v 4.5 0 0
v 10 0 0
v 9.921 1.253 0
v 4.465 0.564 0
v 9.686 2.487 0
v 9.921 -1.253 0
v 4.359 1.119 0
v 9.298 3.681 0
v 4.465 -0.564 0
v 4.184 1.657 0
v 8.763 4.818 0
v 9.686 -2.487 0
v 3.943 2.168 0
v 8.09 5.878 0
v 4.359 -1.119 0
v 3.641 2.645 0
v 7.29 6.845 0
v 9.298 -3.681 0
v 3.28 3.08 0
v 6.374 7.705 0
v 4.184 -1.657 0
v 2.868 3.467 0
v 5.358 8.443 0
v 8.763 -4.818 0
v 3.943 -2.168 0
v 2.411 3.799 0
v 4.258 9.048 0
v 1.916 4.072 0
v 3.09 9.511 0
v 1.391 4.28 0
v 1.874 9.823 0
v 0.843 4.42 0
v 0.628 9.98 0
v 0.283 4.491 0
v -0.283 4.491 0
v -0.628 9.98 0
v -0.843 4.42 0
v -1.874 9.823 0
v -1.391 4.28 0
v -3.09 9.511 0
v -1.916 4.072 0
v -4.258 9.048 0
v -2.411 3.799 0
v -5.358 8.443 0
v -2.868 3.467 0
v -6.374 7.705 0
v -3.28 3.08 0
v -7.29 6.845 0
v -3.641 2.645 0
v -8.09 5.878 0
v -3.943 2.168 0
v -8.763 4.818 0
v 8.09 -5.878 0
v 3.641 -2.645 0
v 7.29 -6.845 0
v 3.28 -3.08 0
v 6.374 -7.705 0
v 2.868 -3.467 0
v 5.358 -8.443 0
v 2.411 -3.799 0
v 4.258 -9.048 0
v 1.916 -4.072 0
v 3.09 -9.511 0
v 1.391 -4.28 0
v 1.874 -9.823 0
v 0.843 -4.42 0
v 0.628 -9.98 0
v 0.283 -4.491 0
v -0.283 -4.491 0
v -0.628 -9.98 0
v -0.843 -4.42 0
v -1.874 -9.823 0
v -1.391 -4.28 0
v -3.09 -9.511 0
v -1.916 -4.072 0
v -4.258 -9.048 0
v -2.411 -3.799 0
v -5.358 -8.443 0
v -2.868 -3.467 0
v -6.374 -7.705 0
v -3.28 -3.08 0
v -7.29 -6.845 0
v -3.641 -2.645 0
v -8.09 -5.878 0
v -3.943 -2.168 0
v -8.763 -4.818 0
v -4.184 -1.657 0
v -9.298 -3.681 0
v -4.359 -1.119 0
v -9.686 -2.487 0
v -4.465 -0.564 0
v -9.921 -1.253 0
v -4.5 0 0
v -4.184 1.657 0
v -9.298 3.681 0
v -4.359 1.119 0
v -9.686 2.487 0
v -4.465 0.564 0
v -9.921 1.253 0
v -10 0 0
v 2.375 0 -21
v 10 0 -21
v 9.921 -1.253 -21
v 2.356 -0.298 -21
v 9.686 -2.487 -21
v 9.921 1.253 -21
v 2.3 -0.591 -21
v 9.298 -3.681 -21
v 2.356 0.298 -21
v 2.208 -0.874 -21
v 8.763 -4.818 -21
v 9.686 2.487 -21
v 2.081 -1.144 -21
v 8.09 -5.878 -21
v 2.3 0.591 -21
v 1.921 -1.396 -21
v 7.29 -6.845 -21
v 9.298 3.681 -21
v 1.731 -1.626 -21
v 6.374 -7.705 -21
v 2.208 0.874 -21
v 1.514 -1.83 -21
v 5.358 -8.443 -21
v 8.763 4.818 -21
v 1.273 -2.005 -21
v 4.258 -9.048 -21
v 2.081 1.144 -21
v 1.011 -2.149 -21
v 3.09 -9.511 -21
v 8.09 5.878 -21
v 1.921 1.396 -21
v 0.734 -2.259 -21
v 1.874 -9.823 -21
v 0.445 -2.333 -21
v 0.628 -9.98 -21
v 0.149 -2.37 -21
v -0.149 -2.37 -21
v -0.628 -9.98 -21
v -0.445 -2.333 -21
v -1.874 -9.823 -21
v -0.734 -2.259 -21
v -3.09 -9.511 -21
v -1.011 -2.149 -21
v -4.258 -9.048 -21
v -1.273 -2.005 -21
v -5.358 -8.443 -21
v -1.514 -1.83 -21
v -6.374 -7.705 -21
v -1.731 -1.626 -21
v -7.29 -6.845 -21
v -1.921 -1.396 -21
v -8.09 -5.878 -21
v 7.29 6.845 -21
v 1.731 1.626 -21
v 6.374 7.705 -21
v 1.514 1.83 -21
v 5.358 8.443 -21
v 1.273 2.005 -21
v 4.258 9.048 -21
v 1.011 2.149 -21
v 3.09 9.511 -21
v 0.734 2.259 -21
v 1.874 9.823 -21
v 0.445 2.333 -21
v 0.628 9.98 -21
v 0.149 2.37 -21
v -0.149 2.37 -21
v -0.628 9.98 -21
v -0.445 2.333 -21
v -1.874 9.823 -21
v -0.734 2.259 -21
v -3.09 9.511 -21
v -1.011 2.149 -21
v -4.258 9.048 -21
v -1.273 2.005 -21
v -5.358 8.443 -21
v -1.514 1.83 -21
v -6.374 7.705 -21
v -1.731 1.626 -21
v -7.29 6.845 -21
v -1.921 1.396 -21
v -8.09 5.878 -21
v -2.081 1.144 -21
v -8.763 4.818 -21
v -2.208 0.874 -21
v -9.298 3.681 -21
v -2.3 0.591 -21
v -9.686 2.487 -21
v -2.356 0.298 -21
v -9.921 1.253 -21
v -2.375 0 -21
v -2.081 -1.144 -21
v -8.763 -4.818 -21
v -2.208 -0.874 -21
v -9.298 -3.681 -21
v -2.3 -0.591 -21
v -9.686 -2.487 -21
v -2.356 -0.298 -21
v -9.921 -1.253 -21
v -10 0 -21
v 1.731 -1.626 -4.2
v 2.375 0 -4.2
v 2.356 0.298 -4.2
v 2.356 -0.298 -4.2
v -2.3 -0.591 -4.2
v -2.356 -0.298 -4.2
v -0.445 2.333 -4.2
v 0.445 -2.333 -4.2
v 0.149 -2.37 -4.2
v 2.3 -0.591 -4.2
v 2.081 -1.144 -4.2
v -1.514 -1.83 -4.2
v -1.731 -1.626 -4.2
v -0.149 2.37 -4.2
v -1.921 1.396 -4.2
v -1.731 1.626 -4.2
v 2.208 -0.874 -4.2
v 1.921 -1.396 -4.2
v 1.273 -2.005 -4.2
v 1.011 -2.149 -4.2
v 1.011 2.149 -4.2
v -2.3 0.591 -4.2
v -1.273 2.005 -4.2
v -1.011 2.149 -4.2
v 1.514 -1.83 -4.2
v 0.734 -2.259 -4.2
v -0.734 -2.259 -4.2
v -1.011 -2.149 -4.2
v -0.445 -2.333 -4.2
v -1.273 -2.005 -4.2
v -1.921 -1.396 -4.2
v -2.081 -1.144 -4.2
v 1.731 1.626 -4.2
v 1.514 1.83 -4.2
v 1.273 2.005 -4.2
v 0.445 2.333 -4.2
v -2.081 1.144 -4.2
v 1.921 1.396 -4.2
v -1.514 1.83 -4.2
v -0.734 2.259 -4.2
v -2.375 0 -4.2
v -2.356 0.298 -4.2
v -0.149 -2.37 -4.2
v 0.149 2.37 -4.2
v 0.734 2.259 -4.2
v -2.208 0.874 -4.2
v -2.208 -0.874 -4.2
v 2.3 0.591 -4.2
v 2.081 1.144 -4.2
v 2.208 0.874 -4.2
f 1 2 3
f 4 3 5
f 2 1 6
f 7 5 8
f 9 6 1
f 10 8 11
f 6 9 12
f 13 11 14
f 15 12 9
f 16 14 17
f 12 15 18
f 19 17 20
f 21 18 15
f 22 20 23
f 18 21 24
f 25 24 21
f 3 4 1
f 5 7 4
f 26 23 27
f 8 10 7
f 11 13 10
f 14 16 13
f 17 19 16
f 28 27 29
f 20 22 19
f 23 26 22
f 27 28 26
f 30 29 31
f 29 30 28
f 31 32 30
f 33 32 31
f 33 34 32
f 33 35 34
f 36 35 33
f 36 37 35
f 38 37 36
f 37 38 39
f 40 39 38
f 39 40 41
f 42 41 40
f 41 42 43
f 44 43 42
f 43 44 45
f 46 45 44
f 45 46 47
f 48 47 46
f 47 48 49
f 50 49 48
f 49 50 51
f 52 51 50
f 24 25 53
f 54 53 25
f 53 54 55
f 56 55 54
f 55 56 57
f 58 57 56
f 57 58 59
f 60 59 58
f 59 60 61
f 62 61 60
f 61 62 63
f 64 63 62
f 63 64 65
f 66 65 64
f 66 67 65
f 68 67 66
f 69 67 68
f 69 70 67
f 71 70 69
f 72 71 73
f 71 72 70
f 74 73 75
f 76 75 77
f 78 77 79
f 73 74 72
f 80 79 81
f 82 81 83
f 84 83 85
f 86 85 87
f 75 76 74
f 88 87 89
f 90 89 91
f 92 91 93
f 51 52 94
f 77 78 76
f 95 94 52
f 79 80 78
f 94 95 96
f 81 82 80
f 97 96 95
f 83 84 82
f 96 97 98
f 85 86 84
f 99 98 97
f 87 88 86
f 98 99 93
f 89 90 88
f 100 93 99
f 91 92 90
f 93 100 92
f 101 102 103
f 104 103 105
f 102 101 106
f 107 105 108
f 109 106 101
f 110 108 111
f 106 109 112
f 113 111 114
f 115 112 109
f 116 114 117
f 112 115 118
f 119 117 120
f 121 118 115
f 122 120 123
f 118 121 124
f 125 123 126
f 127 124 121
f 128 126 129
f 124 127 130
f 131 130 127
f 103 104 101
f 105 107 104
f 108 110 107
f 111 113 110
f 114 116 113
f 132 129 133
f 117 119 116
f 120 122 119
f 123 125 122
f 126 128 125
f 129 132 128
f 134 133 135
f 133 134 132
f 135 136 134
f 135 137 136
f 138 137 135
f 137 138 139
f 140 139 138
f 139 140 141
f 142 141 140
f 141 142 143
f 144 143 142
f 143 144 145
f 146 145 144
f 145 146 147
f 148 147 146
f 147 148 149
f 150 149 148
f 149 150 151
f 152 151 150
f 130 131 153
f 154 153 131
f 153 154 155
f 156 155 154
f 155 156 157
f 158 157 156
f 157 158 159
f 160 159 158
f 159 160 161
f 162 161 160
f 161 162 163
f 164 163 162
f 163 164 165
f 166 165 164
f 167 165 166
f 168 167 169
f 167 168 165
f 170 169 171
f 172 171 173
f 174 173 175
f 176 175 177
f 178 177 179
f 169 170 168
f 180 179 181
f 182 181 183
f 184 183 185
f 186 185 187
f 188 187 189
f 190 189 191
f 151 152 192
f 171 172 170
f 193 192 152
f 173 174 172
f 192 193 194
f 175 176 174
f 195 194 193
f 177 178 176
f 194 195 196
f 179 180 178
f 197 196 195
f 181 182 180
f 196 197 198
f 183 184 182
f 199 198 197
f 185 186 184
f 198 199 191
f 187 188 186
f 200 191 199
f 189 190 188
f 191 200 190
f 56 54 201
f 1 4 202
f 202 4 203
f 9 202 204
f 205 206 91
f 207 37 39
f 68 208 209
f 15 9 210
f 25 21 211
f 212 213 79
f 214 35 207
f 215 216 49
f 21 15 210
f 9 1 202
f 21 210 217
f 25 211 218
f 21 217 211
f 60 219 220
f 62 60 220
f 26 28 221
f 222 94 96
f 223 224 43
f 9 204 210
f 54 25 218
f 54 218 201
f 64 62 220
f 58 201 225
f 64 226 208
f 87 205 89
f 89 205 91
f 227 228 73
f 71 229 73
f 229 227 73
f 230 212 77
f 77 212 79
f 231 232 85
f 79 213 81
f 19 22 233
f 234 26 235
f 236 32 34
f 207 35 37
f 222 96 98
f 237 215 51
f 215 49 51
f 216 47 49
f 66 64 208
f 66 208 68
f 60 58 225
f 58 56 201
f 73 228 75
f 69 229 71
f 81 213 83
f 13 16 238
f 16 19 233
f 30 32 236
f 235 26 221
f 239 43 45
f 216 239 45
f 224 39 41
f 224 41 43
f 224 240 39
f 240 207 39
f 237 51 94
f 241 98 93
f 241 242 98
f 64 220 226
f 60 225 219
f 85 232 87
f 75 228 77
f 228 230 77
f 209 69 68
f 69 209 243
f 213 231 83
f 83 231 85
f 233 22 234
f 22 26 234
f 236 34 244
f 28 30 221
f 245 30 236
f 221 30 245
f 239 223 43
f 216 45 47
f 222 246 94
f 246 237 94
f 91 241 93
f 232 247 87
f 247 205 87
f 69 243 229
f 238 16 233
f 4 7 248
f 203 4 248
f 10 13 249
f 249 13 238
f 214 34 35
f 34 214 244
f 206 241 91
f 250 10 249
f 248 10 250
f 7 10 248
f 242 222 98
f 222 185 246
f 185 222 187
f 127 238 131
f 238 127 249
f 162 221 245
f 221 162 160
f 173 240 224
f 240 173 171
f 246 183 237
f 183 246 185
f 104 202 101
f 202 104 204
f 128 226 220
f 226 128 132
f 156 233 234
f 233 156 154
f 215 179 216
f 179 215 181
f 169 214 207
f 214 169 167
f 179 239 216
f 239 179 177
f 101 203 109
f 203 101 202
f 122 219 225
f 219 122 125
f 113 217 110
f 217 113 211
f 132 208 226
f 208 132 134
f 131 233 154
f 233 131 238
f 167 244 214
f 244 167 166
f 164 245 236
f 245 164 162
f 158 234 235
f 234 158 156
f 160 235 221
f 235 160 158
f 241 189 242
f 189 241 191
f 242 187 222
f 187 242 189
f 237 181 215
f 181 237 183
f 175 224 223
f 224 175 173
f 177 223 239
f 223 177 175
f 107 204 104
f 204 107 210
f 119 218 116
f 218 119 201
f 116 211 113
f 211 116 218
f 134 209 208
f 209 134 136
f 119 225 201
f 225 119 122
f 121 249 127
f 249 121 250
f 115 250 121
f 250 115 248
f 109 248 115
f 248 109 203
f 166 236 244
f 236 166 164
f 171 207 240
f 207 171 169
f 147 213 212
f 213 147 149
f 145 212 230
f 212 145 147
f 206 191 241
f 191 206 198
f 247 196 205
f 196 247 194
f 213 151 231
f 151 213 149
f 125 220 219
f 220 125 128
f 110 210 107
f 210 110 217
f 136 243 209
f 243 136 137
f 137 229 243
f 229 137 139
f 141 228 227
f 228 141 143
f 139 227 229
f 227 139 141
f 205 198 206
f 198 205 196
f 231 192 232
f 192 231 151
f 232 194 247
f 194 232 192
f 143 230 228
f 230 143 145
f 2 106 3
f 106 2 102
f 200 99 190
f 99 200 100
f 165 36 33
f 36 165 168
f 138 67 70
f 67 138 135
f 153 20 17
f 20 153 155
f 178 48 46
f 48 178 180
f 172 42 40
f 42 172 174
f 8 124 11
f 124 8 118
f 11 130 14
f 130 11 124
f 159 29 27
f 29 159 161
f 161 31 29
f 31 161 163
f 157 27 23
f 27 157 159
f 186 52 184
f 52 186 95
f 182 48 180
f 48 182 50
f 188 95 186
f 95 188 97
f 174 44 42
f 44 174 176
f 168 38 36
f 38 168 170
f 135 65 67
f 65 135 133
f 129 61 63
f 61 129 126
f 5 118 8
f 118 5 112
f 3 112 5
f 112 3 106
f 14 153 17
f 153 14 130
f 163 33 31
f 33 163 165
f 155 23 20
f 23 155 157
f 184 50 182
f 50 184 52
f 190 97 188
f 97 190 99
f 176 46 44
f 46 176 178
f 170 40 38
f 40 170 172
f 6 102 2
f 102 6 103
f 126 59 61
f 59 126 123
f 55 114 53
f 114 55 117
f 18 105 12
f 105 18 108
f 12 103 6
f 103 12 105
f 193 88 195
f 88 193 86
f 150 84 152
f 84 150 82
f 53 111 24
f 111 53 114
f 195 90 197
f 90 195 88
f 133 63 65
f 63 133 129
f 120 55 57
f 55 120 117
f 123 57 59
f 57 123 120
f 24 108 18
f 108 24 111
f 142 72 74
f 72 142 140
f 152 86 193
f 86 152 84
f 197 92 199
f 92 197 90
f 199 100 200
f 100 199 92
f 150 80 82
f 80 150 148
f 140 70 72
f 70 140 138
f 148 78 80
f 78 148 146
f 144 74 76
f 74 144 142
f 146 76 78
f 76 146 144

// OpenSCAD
$fn = 50;


difference() {
	union() {
		translate(v = [0, 0, -21.0000000000]) {
			cylinder(h = 21, r = 10.0000000000);
		}
	}
	union() {
		translate(v = [0, 0, 0]) {
			rotate(a = [0, 0, 0]) {
				difference() {
					union() {
						#translate(v = [0, 0, -21.0000000000]) {
							cylinder(h = 21, r = 2.2500000000);
						}
						#translate(v = [0, 0, -4.2000000000]) {
							cylinder(h = 4.2000000000, r1 = 2.3750000000, r2 = 4.5000000000);
						}
						#translate(v = [0, 0, -21.0000000000]) {
							cylinder(h = 21, r = 2.3750000000);
						}
						#translate(v = [0, 0, -21.0000000000]) {
							cylinder(h = 21, r = 2.2500000000);
						}
					}
					union();
				}
			}
		}
	}
}
